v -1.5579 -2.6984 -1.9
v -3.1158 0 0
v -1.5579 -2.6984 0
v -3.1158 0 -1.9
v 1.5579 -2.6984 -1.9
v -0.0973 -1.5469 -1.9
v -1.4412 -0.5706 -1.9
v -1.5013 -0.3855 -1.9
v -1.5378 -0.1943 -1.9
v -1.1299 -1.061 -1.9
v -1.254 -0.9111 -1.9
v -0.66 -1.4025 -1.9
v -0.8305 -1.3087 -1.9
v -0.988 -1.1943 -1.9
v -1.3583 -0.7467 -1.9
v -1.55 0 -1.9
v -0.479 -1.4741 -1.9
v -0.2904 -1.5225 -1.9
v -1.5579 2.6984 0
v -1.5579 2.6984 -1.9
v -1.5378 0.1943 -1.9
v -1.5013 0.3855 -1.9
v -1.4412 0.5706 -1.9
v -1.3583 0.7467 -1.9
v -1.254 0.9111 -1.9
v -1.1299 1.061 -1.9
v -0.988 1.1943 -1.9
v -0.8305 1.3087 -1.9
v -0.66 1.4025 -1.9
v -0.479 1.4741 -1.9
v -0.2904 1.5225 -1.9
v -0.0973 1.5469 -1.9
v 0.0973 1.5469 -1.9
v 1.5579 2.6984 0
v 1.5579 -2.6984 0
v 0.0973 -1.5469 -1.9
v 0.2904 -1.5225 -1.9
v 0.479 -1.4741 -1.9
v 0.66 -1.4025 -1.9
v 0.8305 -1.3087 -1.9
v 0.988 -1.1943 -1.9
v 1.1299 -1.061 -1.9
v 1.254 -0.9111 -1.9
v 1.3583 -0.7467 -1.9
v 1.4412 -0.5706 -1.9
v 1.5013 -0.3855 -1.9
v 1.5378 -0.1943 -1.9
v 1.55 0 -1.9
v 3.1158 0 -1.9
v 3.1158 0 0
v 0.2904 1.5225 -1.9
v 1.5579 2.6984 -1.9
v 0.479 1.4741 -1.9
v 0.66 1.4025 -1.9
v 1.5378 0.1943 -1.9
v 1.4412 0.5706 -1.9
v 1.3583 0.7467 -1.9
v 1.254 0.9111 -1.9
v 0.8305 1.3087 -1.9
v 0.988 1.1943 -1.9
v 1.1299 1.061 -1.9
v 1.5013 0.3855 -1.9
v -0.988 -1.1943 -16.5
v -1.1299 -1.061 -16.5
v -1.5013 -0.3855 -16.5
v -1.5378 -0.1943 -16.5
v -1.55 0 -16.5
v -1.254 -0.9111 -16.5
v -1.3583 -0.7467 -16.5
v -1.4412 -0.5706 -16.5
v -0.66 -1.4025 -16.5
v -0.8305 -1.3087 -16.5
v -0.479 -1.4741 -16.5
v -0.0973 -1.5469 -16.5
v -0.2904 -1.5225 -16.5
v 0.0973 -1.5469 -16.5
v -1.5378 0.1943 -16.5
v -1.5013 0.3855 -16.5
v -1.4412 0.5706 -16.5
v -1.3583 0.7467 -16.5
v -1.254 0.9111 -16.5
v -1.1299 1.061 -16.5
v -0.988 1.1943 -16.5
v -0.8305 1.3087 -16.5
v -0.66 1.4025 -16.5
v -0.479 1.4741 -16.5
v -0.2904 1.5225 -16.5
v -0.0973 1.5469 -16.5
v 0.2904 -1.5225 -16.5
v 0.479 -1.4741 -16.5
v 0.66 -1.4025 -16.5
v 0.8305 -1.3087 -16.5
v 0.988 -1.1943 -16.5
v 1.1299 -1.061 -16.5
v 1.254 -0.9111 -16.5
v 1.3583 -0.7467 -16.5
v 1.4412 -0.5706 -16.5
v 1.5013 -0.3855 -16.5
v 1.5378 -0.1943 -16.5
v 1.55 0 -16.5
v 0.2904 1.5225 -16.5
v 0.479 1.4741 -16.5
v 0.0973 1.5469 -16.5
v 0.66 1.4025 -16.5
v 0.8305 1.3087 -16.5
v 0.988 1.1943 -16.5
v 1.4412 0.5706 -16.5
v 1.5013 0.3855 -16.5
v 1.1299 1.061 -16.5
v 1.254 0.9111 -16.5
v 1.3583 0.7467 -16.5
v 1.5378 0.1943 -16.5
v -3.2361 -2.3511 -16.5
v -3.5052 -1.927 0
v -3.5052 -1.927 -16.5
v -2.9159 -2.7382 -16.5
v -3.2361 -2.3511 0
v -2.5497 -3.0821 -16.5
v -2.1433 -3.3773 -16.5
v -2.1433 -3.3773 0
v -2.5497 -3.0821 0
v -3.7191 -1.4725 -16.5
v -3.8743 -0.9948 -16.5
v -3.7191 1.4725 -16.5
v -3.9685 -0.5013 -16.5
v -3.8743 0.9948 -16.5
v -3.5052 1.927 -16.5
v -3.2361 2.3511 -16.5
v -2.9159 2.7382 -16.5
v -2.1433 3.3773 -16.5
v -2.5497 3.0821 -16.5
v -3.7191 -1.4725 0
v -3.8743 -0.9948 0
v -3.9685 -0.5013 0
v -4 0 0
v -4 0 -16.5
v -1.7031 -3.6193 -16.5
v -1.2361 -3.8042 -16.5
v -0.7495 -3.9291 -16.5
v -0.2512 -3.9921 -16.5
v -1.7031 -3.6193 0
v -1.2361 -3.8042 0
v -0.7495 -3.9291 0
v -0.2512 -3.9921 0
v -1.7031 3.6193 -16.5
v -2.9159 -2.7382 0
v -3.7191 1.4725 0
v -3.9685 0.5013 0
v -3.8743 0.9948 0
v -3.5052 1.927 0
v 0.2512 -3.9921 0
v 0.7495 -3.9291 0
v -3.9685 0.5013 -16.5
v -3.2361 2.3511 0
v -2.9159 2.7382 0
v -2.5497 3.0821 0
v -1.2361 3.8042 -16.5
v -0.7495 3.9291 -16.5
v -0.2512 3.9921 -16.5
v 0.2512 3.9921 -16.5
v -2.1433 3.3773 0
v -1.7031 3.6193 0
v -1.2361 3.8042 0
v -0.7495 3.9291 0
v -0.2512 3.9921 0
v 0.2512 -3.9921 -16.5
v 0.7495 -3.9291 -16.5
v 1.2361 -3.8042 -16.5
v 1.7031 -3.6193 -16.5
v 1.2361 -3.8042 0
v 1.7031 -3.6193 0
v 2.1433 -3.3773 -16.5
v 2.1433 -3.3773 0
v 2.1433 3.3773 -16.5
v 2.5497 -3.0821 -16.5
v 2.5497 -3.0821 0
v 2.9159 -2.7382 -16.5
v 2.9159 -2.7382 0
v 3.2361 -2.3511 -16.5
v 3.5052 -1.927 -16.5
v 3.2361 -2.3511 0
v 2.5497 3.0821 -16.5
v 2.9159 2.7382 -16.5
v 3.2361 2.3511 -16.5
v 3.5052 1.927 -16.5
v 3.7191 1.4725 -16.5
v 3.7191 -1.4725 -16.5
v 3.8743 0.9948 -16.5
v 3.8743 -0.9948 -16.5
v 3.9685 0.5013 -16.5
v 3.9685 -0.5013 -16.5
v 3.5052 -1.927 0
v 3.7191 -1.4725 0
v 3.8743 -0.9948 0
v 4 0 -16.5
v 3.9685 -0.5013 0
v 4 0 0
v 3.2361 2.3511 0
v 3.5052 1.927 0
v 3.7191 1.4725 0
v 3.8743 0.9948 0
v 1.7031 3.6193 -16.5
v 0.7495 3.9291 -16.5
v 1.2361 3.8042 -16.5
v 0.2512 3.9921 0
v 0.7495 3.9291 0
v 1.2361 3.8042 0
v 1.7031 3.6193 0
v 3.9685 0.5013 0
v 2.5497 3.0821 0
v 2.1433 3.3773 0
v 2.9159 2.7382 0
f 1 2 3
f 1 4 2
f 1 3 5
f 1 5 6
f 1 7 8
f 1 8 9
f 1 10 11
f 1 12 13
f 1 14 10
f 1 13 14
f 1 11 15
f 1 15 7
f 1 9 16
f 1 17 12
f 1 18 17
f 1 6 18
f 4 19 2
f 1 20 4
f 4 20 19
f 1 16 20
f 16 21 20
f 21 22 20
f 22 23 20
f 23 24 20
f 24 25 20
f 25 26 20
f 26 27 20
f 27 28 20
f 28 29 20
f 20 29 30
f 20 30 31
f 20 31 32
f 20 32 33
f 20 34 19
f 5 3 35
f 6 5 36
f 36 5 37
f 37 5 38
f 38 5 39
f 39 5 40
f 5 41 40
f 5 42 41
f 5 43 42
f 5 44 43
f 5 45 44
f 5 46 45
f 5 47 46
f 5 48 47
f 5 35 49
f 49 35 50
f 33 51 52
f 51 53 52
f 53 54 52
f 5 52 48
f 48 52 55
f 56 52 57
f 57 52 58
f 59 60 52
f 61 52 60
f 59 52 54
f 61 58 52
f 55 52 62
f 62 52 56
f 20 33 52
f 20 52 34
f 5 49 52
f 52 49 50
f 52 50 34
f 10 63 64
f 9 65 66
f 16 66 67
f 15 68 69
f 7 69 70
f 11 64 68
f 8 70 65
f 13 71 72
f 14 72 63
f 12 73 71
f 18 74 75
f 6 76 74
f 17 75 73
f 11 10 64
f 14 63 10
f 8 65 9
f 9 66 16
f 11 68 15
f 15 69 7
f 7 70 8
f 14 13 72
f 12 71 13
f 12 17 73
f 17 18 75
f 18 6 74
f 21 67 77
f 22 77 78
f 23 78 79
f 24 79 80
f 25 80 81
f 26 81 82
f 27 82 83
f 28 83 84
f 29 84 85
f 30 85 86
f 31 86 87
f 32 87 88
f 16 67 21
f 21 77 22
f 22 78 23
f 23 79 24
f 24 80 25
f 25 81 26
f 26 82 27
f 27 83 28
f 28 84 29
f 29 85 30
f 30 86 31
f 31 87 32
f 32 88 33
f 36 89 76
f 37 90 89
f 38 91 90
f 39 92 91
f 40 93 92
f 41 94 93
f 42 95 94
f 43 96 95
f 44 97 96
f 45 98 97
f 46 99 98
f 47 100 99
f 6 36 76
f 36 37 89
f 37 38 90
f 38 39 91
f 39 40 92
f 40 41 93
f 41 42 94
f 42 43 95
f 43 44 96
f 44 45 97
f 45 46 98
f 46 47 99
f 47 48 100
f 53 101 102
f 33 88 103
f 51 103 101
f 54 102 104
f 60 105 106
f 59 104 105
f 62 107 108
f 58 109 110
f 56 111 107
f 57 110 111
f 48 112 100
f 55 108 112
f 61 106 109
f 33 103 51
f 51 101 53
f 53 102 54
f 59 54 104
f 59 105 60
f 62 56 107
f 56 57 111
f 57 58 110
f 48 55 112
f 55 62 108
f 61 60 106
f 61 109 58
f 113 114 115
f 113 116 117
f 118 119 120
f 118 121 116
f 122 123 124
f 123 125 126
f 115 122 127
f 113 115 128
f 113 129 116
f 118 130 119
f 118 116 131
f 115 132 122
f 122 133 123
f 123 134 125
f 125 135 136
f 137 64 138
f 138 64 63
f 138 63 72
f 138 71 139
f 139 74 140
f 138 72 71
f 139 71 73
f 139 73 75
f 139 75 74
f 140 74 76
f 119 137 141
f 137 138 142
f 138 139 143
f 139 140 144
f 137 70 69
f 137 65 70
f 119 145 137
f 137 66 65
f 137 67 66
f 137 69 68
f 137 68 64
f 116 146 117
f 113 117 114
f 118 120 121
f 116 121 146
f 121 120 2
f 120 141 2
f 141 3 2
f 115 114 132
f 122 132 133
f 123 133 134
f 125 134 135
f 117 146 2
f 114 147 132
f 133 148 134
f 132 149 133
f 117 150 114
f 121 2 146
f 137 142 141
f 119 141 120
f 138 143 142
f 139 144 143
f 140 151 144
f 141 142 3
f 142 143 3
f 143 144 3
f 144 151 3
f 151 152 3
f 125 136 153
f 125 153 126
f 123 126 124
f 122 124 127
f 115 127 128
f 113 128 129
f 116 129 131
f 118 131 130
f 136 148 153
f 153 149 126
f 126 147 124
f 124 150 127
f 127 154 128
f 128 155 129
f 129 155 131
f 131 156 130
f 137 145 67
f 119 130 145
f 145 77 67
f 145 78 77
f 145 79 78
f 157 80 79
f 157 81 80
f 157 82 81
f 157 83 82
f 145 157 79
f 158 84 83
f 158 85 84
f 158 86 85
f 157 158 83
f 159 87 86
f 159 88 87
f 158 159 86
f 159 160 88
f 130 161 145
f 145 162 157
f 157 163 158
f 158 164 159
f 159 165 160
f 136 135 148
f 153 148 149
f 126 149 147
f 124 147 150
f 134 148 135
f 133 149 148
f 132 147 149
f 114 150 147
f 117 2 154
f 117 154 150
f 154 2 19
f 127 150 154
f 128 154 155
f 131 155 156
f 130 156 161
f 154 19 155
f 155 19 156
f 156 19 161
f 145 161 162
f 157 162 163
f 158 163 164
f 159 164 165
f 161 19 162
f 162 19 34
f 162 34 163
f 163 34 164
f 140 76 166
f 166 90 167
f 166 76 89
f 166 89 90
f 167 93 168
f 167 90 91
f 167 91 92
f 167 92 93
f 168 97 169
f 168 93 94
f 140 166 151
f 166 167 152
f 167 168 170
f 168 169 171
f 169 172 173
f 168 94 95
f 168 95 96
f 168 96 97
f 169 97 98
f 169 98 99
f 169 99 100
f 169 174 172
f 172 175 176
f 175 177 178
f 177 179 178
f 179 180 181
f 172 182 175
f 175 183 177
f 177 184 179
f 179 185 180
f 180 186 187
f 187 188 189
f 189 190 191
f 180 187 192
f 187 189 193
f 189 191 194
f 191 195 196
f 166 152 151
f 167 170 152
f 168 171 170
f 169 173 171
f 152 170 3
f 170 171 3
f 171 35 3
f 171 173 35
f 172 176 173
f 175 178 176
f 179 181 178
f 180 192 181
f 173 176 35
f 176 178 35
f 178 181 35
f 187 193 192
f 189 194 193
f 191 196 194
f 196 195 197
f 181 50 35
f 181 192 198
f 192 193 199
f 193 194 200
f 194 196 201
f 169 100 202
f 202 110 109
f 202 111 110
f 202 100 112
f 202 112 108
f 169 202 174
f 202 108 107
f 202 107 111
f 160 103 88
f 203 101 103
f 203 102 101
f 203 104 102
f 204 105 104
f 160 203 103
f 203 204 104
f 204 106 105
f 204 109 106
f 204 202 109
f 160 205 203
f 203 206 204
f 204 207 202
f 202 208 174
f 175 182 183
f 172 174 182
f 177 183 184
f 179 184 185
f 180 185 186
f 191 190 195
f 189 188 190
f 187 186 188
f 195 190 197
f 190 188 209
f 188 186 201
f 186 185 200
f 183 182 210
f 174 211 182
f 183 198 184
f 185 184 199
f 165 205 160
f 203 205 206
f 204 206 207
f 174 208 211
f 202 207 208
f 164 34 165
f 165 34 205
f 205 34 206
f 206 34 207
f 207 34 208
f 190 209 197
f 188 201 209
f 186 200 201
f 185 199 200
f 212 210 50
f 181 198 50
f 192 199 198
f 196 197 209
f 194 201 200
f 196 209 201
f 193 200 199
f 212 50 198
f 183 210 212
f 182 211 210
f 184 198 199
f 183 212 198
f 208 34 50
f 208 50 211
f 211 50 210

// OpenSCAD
$fn = 50;

difference() {
	union() {
		translate(v = [0, 0, -16.5]) {
			cylinder(h = 19.5, r = 4.0);
		}
	}
	union() {
		translate(v = [0, 0, 0]) {
			rotate(a = [0, 0, 0]) {
				difference() {
					union() {
						translate(v = [0, 0, -1.9]) {
							linear_extrude(height = 1.9) {
								polygon(points = [[3.1158, 0.0], [1.5579000000000005, 2.698361953111554], [-1.5578999999999994, 2.6983619531115544], [-3.1158, 3.815754496783323e-16], [-1.5579000000000014, -2.6983619531115535], [1.557899999999998, -2.6983619531115552]]);
							}
						}
					}
					union();
				}
			}
		}
		#cylinder(h = 3, r = 5.0);
		#translate(v = [0, 0, -100.0]) {
			cylinder(h = 200, r = 1.55);
		}
	}
}
